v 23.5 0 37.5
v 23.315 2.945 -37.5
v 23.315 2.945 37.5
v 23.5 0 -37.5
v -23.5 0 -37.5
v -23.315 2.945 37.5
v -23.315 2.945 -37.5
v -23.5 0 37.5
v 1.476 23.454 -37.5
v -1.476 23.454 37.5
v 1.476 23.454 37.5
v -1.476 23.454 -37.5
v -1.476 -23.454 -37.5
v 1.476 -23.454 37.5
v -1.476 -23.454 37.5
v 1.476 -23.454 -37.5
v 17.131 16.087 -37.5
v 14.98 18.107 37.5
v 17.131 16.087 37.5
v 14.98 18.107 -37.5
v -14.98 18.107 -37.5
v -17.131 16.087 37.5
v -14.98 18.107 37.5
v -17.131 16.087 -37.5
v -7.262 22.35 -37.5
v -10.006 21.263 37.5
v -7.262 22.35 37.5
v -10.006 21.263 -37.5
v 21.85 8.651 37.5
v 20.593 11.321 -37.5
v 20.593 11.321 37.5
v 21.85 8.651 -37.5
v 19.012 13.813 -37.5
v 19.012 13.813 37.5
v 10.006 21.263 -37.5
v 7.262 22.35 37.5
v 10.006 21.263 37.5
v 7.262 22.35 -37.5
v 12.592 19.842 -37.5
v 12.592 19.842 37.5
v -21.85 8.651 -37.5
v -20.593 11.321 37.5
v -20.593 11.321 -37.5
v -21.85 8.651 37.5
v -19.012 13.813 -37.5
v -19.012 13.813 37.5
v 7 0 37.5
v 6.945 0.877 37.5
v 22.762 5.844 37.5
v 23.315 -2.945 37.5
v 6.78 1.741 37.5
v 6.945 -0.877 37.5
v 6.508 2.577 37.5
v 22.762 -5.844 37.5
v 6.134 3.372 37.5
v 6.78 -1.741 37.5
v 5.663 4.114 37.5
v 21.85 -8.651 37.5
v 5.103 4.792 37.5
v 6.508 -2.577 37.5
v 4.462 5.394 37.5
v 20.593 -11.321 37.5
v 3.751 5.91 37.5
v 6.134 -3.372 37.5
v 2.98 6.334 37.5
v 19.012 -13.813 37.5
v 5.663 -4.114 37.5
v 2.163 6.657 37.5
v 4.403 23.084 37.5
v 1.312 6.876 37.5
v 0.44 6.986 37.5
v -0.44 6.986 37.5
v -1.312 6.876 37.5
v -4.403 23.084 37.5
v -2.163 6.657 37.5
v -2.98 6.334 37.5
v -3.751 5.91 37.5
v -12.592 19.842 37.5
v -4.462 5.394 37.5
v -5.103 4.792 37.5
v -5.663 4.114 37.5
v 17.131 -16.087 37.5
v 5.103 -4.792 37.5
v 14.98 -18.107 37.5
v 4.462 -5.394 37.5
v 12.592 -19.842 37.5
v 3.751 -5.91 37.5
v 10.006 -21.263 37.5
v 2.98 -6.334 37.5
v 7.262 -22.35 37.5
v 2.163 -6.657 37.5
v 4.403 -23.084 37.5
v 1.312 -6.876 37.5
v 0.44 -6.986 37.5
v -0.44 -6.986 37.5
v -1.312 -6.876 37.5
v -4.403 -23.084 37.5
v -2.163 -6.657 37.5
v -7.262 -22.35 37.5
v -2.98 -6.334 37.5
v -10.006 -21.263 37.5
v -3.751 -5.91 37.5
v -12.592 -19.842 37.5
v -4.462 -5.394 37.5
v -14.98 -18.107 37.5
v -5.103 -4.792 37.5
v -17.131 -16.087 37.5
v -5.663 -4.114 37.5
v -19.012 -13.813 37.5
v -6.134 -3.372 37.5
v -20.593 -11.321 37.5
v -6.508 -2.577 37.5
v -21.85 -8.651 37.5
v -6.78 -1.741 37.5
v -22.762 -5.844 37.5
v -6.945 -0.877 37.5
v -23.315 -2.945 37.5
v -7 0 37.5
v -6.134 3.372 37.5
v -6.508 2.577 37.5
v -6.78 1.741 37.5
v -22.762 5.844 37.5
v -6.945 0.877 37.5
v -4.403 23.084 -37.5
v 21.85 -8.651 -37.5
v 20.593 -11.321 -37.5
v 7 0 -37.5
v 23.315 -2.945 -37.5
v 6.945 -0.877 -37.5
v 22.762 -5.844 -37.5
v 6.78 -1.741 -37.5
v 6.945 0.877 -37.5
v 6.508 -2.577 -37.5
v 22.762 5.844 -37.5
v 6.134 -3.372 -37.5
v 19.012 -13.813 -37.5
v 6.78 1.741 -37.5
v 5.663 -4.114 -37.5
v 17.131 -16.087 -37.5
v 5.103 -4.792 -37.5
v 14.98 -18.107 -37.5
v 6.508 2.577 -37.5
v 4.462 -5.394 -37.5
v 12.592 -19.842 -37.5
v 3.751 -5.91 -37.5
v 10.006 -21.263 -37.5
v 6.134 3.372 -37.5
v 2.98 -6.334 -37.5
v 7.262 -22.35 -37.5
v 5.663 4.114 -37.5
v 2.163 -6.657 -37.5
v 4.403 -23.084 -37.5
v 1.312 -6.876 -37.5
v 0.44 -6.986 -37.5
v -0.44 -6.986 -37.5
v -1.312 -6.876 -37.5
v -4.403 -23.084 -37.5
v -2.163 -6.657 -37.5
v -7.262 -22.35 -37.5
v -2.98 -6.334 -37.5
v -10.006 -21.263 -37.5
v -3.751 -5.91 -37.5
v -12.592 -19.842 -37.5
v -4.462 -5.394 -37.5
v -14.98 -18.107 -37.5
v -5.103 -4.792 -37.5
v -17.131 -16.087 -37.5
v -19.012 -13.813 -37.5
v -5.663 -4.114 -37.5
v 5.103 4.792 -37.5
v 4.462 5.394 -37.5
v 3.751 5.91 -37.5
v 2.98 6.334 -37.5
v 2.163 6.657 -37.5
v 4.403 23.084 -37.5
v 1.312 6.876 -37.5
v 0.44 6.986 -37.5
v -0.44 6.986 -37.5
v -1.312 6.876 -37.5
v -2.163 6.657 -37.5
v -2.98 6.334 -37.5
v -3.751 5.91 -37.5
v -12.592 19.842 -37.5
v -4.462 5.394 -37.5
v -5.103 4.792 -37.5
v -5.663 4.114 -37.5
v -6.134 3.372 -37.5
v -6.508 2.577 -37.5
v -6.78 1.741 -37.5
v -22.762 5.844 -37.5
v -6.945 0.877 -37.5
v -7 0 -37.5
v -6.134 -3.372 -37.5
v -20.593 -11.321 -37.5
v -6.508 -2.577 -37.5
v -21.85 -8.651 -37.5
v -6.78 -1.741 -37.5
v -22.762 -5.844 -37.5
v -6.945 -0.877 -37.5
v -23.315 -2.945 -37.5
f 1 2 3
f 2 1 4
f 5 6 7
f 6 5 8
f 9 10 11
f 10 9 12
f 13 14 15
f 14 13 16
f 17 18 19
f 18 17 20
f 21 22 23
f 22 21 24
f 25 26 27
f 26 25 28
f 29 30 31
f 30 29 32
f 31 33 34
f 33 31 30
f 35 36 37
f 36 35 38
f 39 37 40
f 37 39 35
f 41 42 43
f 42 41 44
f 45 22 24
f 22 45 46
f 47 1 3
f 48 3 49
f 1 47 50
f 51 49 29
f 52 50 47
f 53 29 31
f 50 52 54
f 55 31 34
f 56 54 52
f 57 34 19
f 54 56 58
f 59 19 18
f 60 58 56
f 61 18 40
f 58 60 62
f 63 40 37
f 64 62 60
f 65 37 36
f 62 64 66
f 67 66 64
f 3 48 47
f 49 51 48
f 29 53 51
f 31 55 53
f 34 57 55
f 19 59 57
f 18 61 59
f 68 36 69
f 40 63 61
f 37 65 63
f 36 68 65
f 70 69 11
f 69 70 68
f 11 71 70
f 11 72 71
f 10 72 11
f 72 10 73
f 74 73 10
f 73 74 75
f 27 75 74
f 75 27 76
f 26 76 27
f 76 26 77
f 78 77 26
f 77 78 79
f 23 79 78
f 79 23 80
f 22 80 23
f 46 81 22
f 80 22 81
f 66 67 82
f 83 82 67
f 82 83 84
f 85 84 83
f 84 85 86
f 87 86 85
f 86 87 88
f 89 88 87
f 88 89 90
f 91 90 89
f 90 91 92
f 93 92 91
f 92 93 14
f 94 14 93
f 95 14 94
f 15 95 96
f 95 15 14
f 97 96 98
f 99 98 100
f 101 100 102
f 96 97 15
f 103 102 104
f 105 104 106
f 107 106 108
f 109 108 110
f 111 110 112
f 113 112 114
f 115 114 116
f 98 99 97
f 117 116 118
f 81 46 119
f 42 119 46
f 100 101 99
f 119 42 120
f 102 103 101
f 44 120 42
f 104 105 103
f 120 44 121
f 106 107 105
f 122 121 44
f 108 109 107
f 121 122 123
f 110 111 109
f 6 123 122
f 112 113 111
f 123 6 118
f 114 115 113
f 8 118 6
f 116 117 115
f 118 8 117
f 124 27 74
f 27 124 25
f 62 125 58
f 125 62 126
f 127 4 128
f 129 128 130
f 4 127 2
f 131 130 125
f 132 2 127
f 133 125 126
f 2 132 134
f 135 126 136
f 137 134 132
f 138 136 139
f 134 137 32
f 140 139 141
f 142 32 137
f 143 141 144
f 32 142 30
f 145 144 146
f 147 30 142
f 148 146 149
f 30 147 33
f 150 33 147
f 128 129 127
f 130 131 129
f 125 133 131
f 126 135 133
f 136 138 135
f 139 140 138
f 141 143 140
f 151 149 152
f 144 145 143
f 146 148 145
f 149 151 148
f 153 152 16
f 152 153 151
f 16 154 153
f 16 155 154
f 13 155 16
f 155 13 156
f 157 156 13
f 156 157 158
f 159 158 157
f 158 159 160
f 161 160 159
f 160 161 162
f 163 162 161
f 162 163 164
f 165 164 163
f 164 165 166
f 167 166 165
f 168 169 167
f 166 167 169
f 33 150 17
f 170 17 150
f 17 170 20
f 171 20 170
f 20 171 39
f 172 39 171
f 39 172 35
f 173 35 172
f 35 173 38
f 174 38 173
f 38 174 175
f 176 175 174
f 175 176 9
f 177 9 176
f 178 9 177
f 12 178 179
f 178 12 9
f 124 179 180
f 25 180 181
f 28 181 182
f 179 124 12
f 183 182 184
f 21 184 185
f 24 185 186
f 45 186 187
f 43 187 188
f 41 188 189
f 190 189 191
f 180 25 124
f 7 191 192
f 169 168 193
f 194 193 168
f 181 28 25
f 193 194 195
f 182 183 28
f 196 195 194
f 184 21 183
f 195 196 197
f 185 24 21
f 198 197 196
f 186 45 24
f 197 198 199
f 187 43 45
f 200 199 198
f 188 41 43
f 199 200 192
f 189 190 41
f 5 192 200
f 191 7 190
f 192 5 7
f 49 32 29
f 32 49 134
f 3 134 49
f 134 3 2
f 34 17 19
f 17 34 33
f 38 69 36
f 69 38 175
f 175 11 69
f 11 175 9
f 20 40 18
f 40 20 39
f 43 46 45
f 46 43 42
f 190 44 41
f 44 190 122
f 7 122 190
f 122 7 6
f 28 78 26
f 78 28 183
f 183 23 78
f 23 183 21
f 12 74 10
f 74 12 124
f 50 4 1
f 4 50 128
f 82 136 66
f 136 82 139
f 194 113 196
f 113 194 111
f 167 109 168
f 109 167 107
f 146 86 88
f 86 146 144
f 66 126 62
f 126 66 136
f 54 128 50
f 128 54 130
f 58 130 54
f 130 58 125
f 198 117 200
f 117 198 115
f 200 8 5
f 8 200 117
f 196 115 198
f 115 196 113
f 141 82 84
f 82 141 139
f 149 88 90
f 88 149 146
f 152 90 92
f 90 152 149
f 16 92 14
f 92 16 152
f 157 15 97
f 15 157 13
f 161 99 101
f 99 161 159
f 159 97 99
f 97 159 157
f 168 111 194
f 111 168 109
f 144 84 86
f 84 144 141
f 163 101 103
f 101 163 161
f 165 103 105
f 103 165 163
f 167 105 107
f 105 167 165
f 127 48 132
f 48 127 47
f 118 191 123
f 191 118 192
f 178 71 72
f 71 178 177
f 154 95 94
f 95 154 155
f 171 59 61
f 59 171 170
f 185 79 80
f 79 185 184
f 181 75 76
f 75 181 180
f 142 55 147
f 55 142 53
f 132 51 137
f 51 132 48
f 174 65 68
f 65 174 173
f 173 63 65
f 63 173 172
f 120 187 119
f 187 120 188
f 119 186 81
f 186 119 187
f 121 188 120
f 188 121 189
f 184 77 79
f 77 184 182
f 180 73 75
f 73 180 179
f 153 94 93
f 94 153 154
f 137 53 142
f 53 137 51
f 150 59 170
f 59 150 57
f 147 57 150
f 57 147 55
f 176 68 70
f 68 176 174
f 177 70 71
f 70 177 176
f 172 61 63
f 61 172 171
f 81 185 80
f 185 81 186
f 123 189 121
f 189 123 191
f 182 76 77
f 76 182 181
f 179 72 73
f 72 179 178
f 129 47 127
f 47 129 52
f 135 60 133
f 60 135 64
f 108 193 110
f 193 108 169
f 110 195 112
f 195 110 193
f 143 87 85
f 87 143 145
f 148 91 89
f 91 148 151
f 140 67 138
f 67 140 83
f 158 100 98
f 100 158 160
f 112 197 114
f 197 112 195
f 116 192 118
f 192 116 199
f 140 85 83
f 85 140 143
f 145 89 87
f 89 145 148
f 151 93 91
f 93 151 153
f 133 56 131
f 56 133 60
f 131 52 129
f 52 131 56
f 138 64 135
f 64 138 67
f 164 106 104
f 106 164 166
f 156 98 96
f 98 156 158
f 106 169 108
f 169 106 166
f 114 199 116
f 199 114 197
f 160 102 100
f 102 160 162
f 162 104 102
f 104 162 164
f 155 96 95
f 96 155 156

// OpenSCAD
$fn = 50;


difference() {
	union() {
		translate(v = [0, 0, -37.5000000000]) {
			cylinder(h = 75, r = 23.5000000000);
		}
	}
	union() {
		translate(v = [0, 0, -100.0000000000]) {
			cylinder(h = 200, r = 7);
		}
	}
}
